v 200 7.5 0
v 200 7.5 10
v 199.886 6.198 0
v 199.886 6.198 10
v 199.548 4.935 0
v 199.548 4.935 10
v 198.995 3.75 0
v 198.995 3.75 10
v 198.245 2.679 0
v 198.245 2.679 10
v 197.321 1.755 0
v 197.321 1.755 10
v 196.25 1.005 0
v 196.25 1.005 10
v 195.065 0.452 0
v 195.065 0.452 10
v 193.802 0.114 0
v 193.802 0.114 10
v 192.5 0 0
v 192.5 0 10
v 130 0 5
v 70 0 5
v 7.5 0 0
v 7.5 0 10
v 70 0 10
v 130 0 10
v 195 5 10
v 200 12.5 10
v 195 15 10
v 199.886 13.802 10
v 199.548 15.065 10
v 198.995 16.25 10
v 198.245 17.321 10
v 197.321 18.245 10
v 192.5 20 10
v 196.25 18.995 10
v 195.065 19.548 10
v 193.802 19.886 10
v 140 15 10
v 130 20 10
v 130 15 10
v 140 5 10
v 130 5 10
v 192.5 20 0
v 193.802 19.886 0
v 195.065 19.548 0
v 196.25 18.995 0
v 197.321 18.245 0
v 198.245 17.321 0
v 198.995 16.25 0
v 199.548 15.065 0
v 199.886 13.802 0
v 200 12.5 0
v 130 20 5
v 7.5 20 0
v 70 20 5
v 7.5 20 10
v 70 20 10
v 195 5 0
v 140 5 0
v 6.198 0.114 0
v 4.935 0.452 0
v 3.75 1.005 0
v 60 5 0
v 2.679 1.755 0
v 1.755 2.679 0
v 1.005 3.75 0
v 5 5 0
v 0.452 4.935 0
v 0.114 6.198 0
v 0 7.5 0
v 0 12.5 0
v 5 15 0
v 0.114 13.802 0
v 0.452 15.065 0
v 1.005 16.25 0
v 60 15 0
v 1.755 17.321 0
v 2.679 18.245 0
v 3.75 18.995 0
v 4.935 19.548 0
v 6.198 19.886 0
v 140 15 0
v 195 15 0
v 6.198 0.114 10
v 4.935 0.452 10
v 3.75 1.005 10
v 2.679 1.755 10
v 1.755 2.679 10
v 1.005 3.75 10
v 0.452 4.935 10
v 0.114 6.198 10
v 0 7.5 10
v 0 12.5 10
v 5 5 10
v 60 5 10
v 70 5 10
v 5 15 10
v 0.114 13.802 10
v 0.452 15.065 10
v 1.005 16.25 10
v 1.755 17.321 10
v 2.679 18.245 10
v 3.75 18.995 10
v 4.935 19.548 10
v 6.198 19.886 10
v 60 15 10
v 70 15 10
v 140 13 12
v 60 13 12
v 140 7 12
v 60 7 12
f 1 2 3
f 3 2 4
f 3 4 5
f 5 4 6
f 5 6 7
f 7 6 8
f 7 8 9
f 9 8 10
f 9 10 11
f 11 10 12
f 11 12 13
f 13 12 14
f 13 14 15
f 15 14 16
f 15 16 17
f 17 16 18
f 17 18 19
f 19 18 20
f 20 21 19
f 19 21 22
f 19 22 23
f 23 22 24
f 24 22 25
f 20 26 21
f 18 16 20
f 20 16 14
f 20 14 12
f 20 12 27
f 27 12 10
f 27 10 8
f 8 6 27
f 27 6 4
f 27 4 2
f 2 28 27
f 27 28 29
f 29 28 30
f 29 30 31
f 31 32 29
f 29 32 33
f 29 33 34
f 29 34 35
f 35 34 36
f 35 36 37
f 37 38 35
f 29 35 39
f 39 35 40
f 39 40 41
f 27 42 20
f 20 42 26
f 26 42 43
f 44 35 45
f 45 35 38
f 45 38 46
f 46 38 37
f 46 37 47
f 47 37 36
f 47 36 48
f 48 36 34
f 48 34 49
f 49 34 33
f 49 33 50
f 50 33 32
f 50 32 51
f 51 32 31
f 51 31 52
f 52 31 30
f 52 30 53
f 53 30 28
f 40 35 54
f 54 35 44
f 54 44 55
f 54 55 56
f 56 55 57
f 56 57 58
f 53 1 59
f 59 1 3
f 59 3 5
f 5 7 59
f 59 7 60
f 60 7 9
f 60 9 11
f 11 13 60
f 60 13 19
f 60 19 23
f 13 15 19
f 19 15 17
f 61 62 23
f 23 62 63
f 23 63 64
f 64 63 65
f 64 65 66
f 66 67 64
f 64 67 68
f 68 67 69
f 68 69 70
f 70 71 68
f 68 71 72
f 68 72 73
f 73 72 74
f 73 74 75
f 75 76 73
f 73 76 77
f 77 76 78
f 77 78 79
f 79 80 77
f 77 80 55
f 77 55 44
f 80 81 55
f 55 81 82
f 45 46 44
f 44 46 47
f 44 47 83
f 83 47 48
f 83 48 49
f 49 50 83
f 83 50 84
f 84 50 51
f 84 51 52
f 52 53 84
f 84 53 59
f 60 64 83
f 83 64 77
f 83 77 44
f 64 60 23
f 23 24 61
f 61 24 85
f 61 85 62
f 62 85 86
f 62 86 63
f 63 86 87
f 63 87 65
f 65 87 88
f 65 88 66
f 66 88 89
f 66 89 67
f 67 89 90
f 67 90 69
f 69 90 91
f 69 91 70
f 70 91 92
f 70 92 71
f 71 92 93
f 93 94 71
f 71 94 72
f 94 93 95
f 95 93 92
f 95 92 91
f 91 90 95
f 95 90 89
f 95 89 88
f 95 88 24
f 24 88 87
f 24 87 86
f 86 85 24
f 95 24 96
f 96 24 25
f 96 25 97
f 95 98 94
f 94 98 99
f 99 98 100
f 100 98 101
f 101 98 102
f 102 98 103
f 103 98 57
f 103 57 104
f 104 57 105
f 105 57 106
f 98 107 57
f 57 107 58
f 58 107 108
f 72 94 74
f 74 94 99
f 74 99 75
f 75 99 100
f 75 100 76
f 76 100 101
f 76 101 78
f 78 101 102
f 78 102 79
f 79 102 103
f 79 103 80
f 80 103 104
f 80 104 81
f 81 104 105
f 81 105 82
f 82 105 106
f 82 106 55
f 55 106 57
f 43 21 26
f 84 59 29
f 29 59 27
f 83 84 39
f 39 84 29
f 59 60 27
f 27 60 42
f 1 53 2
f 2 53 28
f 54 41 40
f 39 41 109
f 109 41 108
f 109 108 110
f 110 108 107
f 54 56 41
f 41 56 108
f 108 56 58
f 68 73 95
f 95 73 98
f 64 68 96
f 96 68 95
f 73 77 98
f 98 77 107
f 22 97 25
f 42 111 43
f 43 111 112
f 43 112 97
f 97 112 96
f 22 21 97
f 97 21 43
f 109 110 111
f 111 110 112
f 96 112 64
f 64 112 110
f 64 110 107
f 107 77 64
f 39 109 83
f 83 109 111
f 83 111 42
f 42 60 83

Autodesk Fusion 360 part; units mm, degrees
sketch "Sketch1" plane through (0, 0, 0) normal (0, 0, 1) x (1, 0, 0)
  line L0 (0, 0) -> (200, 0)
  line L1 (200, 0) -> (200, 20)
  line L2 (200, 20) -> (0, 20)
  line L3 (0, 20) -> (0, 0)
  line L4 (100, 20) -> (130, 20)
  line L5 (130, 20) -> (130, 0)
  line L6 (130, 0) -> (100, 0)
  line L7 (100, 0) -> (100, 20)
  line L8 (130, 0) -> (70, 0)
  line L9 (70, 0) -> (70, 20)
  line L10 (70, 20) -> (130, 20)
  line L11 (130, 20) -> (130, 0)
  line L12 (140, 15) -> (195, 15)
  line L13 (195, 15) -> (195, 5)
  line L14 (195, 5) -> (140, 5)
  line L15 (140, 5) -> (140, 15)
  line L16 (60, 5) -> (5, 5)
  line L17 (5, 5) -> (5, 15)
  line L18 (5, 15) -> (60, 15)
  line L19 (60, 15) -> (60, 5)
  dimension "d1" = 200
  dimension "d2" = 20
extrude "Extrude1" add sketch "Sketch1" along normal blind 10
fillet "Fillet1" radius 7.5 4 edges at (200, 20, 5) (200, 0, 5) (0, 0, 5) (0, 20, 5)
sketch "Sketch2" plane through (0, 0, 10) normal (0, 0, 1) x (-1, 0, 0)
  arc A0 (-7.5, -20) -> (0, -12.5) centre (-7.5, -12.5) ccw
  line L0 (0, -12.5) -> (0, -7.5)
  arc A1 (0, -7.5) -> (-7.5, 0) centre (-7.5, -7.5) ccw
  line L1 (-7.5, 0) -> (-192.5, 0)
  arc A2 (-192.5, 0) -> (-200, -7.5) centre (-192.5, -7.5) ccw
  line L2 (-200, -7.5) -> (-200, -12.5)
  arc A3 (-200, -12.5) -> (-192.5, -20) centre (-192.5, -12.5) ccw
  line L3 (-192.5, -20) -> (-7.5, -20)
  line L4 (-195, -5) -> (-140, -5)
  line L5 (-140, -5) -> (-140, -15)
  line L6 (-140, -15) -> (-195, -15)
  line L7 (-195, -15) -> (-195, -5)
  line L8 (-5, -15) -> (-60, -15)
  line L9 (-60, -15) -> (-60, -5)
  line L10 (-60, -5) -> (-5, -5)
  line L11 (-5, -5) -> (-5, -15)
  line L12 (-60, -20) -> (-140, -20)
  line L13 (-140, -20) -> (-140, 0)
  line L14 (-140, 0) -> (-60, 0)
  line L15 (-60, 0) -> (-60, -20)
extrude "Extrude2" add sketch "Sketch2" along normal blind 2 contours L1 L3 L5 L9 L12 L13 L14 L15
extrude "Extrude3" cut 2 faces at (24.1667, 3.3333, 10) (175.8333, 3.3333, 10) along direction (0, 0, -1) blind 10
chamfer "Chamfer1" distance 7 angle 45 2 edges at (100, 0, 12) (100, 20, 12)
extrude "Extrude4" add sketch "Sketch1" along normal blind 10 contours L0 L2 L3 L9 | L0 L1 L2 L5 L11
fillet "Fillet2" radius 7.5 4 edges at (0, 20, 5) (0, 0, 5) (200, 20, 5) (200, 0, 5)
